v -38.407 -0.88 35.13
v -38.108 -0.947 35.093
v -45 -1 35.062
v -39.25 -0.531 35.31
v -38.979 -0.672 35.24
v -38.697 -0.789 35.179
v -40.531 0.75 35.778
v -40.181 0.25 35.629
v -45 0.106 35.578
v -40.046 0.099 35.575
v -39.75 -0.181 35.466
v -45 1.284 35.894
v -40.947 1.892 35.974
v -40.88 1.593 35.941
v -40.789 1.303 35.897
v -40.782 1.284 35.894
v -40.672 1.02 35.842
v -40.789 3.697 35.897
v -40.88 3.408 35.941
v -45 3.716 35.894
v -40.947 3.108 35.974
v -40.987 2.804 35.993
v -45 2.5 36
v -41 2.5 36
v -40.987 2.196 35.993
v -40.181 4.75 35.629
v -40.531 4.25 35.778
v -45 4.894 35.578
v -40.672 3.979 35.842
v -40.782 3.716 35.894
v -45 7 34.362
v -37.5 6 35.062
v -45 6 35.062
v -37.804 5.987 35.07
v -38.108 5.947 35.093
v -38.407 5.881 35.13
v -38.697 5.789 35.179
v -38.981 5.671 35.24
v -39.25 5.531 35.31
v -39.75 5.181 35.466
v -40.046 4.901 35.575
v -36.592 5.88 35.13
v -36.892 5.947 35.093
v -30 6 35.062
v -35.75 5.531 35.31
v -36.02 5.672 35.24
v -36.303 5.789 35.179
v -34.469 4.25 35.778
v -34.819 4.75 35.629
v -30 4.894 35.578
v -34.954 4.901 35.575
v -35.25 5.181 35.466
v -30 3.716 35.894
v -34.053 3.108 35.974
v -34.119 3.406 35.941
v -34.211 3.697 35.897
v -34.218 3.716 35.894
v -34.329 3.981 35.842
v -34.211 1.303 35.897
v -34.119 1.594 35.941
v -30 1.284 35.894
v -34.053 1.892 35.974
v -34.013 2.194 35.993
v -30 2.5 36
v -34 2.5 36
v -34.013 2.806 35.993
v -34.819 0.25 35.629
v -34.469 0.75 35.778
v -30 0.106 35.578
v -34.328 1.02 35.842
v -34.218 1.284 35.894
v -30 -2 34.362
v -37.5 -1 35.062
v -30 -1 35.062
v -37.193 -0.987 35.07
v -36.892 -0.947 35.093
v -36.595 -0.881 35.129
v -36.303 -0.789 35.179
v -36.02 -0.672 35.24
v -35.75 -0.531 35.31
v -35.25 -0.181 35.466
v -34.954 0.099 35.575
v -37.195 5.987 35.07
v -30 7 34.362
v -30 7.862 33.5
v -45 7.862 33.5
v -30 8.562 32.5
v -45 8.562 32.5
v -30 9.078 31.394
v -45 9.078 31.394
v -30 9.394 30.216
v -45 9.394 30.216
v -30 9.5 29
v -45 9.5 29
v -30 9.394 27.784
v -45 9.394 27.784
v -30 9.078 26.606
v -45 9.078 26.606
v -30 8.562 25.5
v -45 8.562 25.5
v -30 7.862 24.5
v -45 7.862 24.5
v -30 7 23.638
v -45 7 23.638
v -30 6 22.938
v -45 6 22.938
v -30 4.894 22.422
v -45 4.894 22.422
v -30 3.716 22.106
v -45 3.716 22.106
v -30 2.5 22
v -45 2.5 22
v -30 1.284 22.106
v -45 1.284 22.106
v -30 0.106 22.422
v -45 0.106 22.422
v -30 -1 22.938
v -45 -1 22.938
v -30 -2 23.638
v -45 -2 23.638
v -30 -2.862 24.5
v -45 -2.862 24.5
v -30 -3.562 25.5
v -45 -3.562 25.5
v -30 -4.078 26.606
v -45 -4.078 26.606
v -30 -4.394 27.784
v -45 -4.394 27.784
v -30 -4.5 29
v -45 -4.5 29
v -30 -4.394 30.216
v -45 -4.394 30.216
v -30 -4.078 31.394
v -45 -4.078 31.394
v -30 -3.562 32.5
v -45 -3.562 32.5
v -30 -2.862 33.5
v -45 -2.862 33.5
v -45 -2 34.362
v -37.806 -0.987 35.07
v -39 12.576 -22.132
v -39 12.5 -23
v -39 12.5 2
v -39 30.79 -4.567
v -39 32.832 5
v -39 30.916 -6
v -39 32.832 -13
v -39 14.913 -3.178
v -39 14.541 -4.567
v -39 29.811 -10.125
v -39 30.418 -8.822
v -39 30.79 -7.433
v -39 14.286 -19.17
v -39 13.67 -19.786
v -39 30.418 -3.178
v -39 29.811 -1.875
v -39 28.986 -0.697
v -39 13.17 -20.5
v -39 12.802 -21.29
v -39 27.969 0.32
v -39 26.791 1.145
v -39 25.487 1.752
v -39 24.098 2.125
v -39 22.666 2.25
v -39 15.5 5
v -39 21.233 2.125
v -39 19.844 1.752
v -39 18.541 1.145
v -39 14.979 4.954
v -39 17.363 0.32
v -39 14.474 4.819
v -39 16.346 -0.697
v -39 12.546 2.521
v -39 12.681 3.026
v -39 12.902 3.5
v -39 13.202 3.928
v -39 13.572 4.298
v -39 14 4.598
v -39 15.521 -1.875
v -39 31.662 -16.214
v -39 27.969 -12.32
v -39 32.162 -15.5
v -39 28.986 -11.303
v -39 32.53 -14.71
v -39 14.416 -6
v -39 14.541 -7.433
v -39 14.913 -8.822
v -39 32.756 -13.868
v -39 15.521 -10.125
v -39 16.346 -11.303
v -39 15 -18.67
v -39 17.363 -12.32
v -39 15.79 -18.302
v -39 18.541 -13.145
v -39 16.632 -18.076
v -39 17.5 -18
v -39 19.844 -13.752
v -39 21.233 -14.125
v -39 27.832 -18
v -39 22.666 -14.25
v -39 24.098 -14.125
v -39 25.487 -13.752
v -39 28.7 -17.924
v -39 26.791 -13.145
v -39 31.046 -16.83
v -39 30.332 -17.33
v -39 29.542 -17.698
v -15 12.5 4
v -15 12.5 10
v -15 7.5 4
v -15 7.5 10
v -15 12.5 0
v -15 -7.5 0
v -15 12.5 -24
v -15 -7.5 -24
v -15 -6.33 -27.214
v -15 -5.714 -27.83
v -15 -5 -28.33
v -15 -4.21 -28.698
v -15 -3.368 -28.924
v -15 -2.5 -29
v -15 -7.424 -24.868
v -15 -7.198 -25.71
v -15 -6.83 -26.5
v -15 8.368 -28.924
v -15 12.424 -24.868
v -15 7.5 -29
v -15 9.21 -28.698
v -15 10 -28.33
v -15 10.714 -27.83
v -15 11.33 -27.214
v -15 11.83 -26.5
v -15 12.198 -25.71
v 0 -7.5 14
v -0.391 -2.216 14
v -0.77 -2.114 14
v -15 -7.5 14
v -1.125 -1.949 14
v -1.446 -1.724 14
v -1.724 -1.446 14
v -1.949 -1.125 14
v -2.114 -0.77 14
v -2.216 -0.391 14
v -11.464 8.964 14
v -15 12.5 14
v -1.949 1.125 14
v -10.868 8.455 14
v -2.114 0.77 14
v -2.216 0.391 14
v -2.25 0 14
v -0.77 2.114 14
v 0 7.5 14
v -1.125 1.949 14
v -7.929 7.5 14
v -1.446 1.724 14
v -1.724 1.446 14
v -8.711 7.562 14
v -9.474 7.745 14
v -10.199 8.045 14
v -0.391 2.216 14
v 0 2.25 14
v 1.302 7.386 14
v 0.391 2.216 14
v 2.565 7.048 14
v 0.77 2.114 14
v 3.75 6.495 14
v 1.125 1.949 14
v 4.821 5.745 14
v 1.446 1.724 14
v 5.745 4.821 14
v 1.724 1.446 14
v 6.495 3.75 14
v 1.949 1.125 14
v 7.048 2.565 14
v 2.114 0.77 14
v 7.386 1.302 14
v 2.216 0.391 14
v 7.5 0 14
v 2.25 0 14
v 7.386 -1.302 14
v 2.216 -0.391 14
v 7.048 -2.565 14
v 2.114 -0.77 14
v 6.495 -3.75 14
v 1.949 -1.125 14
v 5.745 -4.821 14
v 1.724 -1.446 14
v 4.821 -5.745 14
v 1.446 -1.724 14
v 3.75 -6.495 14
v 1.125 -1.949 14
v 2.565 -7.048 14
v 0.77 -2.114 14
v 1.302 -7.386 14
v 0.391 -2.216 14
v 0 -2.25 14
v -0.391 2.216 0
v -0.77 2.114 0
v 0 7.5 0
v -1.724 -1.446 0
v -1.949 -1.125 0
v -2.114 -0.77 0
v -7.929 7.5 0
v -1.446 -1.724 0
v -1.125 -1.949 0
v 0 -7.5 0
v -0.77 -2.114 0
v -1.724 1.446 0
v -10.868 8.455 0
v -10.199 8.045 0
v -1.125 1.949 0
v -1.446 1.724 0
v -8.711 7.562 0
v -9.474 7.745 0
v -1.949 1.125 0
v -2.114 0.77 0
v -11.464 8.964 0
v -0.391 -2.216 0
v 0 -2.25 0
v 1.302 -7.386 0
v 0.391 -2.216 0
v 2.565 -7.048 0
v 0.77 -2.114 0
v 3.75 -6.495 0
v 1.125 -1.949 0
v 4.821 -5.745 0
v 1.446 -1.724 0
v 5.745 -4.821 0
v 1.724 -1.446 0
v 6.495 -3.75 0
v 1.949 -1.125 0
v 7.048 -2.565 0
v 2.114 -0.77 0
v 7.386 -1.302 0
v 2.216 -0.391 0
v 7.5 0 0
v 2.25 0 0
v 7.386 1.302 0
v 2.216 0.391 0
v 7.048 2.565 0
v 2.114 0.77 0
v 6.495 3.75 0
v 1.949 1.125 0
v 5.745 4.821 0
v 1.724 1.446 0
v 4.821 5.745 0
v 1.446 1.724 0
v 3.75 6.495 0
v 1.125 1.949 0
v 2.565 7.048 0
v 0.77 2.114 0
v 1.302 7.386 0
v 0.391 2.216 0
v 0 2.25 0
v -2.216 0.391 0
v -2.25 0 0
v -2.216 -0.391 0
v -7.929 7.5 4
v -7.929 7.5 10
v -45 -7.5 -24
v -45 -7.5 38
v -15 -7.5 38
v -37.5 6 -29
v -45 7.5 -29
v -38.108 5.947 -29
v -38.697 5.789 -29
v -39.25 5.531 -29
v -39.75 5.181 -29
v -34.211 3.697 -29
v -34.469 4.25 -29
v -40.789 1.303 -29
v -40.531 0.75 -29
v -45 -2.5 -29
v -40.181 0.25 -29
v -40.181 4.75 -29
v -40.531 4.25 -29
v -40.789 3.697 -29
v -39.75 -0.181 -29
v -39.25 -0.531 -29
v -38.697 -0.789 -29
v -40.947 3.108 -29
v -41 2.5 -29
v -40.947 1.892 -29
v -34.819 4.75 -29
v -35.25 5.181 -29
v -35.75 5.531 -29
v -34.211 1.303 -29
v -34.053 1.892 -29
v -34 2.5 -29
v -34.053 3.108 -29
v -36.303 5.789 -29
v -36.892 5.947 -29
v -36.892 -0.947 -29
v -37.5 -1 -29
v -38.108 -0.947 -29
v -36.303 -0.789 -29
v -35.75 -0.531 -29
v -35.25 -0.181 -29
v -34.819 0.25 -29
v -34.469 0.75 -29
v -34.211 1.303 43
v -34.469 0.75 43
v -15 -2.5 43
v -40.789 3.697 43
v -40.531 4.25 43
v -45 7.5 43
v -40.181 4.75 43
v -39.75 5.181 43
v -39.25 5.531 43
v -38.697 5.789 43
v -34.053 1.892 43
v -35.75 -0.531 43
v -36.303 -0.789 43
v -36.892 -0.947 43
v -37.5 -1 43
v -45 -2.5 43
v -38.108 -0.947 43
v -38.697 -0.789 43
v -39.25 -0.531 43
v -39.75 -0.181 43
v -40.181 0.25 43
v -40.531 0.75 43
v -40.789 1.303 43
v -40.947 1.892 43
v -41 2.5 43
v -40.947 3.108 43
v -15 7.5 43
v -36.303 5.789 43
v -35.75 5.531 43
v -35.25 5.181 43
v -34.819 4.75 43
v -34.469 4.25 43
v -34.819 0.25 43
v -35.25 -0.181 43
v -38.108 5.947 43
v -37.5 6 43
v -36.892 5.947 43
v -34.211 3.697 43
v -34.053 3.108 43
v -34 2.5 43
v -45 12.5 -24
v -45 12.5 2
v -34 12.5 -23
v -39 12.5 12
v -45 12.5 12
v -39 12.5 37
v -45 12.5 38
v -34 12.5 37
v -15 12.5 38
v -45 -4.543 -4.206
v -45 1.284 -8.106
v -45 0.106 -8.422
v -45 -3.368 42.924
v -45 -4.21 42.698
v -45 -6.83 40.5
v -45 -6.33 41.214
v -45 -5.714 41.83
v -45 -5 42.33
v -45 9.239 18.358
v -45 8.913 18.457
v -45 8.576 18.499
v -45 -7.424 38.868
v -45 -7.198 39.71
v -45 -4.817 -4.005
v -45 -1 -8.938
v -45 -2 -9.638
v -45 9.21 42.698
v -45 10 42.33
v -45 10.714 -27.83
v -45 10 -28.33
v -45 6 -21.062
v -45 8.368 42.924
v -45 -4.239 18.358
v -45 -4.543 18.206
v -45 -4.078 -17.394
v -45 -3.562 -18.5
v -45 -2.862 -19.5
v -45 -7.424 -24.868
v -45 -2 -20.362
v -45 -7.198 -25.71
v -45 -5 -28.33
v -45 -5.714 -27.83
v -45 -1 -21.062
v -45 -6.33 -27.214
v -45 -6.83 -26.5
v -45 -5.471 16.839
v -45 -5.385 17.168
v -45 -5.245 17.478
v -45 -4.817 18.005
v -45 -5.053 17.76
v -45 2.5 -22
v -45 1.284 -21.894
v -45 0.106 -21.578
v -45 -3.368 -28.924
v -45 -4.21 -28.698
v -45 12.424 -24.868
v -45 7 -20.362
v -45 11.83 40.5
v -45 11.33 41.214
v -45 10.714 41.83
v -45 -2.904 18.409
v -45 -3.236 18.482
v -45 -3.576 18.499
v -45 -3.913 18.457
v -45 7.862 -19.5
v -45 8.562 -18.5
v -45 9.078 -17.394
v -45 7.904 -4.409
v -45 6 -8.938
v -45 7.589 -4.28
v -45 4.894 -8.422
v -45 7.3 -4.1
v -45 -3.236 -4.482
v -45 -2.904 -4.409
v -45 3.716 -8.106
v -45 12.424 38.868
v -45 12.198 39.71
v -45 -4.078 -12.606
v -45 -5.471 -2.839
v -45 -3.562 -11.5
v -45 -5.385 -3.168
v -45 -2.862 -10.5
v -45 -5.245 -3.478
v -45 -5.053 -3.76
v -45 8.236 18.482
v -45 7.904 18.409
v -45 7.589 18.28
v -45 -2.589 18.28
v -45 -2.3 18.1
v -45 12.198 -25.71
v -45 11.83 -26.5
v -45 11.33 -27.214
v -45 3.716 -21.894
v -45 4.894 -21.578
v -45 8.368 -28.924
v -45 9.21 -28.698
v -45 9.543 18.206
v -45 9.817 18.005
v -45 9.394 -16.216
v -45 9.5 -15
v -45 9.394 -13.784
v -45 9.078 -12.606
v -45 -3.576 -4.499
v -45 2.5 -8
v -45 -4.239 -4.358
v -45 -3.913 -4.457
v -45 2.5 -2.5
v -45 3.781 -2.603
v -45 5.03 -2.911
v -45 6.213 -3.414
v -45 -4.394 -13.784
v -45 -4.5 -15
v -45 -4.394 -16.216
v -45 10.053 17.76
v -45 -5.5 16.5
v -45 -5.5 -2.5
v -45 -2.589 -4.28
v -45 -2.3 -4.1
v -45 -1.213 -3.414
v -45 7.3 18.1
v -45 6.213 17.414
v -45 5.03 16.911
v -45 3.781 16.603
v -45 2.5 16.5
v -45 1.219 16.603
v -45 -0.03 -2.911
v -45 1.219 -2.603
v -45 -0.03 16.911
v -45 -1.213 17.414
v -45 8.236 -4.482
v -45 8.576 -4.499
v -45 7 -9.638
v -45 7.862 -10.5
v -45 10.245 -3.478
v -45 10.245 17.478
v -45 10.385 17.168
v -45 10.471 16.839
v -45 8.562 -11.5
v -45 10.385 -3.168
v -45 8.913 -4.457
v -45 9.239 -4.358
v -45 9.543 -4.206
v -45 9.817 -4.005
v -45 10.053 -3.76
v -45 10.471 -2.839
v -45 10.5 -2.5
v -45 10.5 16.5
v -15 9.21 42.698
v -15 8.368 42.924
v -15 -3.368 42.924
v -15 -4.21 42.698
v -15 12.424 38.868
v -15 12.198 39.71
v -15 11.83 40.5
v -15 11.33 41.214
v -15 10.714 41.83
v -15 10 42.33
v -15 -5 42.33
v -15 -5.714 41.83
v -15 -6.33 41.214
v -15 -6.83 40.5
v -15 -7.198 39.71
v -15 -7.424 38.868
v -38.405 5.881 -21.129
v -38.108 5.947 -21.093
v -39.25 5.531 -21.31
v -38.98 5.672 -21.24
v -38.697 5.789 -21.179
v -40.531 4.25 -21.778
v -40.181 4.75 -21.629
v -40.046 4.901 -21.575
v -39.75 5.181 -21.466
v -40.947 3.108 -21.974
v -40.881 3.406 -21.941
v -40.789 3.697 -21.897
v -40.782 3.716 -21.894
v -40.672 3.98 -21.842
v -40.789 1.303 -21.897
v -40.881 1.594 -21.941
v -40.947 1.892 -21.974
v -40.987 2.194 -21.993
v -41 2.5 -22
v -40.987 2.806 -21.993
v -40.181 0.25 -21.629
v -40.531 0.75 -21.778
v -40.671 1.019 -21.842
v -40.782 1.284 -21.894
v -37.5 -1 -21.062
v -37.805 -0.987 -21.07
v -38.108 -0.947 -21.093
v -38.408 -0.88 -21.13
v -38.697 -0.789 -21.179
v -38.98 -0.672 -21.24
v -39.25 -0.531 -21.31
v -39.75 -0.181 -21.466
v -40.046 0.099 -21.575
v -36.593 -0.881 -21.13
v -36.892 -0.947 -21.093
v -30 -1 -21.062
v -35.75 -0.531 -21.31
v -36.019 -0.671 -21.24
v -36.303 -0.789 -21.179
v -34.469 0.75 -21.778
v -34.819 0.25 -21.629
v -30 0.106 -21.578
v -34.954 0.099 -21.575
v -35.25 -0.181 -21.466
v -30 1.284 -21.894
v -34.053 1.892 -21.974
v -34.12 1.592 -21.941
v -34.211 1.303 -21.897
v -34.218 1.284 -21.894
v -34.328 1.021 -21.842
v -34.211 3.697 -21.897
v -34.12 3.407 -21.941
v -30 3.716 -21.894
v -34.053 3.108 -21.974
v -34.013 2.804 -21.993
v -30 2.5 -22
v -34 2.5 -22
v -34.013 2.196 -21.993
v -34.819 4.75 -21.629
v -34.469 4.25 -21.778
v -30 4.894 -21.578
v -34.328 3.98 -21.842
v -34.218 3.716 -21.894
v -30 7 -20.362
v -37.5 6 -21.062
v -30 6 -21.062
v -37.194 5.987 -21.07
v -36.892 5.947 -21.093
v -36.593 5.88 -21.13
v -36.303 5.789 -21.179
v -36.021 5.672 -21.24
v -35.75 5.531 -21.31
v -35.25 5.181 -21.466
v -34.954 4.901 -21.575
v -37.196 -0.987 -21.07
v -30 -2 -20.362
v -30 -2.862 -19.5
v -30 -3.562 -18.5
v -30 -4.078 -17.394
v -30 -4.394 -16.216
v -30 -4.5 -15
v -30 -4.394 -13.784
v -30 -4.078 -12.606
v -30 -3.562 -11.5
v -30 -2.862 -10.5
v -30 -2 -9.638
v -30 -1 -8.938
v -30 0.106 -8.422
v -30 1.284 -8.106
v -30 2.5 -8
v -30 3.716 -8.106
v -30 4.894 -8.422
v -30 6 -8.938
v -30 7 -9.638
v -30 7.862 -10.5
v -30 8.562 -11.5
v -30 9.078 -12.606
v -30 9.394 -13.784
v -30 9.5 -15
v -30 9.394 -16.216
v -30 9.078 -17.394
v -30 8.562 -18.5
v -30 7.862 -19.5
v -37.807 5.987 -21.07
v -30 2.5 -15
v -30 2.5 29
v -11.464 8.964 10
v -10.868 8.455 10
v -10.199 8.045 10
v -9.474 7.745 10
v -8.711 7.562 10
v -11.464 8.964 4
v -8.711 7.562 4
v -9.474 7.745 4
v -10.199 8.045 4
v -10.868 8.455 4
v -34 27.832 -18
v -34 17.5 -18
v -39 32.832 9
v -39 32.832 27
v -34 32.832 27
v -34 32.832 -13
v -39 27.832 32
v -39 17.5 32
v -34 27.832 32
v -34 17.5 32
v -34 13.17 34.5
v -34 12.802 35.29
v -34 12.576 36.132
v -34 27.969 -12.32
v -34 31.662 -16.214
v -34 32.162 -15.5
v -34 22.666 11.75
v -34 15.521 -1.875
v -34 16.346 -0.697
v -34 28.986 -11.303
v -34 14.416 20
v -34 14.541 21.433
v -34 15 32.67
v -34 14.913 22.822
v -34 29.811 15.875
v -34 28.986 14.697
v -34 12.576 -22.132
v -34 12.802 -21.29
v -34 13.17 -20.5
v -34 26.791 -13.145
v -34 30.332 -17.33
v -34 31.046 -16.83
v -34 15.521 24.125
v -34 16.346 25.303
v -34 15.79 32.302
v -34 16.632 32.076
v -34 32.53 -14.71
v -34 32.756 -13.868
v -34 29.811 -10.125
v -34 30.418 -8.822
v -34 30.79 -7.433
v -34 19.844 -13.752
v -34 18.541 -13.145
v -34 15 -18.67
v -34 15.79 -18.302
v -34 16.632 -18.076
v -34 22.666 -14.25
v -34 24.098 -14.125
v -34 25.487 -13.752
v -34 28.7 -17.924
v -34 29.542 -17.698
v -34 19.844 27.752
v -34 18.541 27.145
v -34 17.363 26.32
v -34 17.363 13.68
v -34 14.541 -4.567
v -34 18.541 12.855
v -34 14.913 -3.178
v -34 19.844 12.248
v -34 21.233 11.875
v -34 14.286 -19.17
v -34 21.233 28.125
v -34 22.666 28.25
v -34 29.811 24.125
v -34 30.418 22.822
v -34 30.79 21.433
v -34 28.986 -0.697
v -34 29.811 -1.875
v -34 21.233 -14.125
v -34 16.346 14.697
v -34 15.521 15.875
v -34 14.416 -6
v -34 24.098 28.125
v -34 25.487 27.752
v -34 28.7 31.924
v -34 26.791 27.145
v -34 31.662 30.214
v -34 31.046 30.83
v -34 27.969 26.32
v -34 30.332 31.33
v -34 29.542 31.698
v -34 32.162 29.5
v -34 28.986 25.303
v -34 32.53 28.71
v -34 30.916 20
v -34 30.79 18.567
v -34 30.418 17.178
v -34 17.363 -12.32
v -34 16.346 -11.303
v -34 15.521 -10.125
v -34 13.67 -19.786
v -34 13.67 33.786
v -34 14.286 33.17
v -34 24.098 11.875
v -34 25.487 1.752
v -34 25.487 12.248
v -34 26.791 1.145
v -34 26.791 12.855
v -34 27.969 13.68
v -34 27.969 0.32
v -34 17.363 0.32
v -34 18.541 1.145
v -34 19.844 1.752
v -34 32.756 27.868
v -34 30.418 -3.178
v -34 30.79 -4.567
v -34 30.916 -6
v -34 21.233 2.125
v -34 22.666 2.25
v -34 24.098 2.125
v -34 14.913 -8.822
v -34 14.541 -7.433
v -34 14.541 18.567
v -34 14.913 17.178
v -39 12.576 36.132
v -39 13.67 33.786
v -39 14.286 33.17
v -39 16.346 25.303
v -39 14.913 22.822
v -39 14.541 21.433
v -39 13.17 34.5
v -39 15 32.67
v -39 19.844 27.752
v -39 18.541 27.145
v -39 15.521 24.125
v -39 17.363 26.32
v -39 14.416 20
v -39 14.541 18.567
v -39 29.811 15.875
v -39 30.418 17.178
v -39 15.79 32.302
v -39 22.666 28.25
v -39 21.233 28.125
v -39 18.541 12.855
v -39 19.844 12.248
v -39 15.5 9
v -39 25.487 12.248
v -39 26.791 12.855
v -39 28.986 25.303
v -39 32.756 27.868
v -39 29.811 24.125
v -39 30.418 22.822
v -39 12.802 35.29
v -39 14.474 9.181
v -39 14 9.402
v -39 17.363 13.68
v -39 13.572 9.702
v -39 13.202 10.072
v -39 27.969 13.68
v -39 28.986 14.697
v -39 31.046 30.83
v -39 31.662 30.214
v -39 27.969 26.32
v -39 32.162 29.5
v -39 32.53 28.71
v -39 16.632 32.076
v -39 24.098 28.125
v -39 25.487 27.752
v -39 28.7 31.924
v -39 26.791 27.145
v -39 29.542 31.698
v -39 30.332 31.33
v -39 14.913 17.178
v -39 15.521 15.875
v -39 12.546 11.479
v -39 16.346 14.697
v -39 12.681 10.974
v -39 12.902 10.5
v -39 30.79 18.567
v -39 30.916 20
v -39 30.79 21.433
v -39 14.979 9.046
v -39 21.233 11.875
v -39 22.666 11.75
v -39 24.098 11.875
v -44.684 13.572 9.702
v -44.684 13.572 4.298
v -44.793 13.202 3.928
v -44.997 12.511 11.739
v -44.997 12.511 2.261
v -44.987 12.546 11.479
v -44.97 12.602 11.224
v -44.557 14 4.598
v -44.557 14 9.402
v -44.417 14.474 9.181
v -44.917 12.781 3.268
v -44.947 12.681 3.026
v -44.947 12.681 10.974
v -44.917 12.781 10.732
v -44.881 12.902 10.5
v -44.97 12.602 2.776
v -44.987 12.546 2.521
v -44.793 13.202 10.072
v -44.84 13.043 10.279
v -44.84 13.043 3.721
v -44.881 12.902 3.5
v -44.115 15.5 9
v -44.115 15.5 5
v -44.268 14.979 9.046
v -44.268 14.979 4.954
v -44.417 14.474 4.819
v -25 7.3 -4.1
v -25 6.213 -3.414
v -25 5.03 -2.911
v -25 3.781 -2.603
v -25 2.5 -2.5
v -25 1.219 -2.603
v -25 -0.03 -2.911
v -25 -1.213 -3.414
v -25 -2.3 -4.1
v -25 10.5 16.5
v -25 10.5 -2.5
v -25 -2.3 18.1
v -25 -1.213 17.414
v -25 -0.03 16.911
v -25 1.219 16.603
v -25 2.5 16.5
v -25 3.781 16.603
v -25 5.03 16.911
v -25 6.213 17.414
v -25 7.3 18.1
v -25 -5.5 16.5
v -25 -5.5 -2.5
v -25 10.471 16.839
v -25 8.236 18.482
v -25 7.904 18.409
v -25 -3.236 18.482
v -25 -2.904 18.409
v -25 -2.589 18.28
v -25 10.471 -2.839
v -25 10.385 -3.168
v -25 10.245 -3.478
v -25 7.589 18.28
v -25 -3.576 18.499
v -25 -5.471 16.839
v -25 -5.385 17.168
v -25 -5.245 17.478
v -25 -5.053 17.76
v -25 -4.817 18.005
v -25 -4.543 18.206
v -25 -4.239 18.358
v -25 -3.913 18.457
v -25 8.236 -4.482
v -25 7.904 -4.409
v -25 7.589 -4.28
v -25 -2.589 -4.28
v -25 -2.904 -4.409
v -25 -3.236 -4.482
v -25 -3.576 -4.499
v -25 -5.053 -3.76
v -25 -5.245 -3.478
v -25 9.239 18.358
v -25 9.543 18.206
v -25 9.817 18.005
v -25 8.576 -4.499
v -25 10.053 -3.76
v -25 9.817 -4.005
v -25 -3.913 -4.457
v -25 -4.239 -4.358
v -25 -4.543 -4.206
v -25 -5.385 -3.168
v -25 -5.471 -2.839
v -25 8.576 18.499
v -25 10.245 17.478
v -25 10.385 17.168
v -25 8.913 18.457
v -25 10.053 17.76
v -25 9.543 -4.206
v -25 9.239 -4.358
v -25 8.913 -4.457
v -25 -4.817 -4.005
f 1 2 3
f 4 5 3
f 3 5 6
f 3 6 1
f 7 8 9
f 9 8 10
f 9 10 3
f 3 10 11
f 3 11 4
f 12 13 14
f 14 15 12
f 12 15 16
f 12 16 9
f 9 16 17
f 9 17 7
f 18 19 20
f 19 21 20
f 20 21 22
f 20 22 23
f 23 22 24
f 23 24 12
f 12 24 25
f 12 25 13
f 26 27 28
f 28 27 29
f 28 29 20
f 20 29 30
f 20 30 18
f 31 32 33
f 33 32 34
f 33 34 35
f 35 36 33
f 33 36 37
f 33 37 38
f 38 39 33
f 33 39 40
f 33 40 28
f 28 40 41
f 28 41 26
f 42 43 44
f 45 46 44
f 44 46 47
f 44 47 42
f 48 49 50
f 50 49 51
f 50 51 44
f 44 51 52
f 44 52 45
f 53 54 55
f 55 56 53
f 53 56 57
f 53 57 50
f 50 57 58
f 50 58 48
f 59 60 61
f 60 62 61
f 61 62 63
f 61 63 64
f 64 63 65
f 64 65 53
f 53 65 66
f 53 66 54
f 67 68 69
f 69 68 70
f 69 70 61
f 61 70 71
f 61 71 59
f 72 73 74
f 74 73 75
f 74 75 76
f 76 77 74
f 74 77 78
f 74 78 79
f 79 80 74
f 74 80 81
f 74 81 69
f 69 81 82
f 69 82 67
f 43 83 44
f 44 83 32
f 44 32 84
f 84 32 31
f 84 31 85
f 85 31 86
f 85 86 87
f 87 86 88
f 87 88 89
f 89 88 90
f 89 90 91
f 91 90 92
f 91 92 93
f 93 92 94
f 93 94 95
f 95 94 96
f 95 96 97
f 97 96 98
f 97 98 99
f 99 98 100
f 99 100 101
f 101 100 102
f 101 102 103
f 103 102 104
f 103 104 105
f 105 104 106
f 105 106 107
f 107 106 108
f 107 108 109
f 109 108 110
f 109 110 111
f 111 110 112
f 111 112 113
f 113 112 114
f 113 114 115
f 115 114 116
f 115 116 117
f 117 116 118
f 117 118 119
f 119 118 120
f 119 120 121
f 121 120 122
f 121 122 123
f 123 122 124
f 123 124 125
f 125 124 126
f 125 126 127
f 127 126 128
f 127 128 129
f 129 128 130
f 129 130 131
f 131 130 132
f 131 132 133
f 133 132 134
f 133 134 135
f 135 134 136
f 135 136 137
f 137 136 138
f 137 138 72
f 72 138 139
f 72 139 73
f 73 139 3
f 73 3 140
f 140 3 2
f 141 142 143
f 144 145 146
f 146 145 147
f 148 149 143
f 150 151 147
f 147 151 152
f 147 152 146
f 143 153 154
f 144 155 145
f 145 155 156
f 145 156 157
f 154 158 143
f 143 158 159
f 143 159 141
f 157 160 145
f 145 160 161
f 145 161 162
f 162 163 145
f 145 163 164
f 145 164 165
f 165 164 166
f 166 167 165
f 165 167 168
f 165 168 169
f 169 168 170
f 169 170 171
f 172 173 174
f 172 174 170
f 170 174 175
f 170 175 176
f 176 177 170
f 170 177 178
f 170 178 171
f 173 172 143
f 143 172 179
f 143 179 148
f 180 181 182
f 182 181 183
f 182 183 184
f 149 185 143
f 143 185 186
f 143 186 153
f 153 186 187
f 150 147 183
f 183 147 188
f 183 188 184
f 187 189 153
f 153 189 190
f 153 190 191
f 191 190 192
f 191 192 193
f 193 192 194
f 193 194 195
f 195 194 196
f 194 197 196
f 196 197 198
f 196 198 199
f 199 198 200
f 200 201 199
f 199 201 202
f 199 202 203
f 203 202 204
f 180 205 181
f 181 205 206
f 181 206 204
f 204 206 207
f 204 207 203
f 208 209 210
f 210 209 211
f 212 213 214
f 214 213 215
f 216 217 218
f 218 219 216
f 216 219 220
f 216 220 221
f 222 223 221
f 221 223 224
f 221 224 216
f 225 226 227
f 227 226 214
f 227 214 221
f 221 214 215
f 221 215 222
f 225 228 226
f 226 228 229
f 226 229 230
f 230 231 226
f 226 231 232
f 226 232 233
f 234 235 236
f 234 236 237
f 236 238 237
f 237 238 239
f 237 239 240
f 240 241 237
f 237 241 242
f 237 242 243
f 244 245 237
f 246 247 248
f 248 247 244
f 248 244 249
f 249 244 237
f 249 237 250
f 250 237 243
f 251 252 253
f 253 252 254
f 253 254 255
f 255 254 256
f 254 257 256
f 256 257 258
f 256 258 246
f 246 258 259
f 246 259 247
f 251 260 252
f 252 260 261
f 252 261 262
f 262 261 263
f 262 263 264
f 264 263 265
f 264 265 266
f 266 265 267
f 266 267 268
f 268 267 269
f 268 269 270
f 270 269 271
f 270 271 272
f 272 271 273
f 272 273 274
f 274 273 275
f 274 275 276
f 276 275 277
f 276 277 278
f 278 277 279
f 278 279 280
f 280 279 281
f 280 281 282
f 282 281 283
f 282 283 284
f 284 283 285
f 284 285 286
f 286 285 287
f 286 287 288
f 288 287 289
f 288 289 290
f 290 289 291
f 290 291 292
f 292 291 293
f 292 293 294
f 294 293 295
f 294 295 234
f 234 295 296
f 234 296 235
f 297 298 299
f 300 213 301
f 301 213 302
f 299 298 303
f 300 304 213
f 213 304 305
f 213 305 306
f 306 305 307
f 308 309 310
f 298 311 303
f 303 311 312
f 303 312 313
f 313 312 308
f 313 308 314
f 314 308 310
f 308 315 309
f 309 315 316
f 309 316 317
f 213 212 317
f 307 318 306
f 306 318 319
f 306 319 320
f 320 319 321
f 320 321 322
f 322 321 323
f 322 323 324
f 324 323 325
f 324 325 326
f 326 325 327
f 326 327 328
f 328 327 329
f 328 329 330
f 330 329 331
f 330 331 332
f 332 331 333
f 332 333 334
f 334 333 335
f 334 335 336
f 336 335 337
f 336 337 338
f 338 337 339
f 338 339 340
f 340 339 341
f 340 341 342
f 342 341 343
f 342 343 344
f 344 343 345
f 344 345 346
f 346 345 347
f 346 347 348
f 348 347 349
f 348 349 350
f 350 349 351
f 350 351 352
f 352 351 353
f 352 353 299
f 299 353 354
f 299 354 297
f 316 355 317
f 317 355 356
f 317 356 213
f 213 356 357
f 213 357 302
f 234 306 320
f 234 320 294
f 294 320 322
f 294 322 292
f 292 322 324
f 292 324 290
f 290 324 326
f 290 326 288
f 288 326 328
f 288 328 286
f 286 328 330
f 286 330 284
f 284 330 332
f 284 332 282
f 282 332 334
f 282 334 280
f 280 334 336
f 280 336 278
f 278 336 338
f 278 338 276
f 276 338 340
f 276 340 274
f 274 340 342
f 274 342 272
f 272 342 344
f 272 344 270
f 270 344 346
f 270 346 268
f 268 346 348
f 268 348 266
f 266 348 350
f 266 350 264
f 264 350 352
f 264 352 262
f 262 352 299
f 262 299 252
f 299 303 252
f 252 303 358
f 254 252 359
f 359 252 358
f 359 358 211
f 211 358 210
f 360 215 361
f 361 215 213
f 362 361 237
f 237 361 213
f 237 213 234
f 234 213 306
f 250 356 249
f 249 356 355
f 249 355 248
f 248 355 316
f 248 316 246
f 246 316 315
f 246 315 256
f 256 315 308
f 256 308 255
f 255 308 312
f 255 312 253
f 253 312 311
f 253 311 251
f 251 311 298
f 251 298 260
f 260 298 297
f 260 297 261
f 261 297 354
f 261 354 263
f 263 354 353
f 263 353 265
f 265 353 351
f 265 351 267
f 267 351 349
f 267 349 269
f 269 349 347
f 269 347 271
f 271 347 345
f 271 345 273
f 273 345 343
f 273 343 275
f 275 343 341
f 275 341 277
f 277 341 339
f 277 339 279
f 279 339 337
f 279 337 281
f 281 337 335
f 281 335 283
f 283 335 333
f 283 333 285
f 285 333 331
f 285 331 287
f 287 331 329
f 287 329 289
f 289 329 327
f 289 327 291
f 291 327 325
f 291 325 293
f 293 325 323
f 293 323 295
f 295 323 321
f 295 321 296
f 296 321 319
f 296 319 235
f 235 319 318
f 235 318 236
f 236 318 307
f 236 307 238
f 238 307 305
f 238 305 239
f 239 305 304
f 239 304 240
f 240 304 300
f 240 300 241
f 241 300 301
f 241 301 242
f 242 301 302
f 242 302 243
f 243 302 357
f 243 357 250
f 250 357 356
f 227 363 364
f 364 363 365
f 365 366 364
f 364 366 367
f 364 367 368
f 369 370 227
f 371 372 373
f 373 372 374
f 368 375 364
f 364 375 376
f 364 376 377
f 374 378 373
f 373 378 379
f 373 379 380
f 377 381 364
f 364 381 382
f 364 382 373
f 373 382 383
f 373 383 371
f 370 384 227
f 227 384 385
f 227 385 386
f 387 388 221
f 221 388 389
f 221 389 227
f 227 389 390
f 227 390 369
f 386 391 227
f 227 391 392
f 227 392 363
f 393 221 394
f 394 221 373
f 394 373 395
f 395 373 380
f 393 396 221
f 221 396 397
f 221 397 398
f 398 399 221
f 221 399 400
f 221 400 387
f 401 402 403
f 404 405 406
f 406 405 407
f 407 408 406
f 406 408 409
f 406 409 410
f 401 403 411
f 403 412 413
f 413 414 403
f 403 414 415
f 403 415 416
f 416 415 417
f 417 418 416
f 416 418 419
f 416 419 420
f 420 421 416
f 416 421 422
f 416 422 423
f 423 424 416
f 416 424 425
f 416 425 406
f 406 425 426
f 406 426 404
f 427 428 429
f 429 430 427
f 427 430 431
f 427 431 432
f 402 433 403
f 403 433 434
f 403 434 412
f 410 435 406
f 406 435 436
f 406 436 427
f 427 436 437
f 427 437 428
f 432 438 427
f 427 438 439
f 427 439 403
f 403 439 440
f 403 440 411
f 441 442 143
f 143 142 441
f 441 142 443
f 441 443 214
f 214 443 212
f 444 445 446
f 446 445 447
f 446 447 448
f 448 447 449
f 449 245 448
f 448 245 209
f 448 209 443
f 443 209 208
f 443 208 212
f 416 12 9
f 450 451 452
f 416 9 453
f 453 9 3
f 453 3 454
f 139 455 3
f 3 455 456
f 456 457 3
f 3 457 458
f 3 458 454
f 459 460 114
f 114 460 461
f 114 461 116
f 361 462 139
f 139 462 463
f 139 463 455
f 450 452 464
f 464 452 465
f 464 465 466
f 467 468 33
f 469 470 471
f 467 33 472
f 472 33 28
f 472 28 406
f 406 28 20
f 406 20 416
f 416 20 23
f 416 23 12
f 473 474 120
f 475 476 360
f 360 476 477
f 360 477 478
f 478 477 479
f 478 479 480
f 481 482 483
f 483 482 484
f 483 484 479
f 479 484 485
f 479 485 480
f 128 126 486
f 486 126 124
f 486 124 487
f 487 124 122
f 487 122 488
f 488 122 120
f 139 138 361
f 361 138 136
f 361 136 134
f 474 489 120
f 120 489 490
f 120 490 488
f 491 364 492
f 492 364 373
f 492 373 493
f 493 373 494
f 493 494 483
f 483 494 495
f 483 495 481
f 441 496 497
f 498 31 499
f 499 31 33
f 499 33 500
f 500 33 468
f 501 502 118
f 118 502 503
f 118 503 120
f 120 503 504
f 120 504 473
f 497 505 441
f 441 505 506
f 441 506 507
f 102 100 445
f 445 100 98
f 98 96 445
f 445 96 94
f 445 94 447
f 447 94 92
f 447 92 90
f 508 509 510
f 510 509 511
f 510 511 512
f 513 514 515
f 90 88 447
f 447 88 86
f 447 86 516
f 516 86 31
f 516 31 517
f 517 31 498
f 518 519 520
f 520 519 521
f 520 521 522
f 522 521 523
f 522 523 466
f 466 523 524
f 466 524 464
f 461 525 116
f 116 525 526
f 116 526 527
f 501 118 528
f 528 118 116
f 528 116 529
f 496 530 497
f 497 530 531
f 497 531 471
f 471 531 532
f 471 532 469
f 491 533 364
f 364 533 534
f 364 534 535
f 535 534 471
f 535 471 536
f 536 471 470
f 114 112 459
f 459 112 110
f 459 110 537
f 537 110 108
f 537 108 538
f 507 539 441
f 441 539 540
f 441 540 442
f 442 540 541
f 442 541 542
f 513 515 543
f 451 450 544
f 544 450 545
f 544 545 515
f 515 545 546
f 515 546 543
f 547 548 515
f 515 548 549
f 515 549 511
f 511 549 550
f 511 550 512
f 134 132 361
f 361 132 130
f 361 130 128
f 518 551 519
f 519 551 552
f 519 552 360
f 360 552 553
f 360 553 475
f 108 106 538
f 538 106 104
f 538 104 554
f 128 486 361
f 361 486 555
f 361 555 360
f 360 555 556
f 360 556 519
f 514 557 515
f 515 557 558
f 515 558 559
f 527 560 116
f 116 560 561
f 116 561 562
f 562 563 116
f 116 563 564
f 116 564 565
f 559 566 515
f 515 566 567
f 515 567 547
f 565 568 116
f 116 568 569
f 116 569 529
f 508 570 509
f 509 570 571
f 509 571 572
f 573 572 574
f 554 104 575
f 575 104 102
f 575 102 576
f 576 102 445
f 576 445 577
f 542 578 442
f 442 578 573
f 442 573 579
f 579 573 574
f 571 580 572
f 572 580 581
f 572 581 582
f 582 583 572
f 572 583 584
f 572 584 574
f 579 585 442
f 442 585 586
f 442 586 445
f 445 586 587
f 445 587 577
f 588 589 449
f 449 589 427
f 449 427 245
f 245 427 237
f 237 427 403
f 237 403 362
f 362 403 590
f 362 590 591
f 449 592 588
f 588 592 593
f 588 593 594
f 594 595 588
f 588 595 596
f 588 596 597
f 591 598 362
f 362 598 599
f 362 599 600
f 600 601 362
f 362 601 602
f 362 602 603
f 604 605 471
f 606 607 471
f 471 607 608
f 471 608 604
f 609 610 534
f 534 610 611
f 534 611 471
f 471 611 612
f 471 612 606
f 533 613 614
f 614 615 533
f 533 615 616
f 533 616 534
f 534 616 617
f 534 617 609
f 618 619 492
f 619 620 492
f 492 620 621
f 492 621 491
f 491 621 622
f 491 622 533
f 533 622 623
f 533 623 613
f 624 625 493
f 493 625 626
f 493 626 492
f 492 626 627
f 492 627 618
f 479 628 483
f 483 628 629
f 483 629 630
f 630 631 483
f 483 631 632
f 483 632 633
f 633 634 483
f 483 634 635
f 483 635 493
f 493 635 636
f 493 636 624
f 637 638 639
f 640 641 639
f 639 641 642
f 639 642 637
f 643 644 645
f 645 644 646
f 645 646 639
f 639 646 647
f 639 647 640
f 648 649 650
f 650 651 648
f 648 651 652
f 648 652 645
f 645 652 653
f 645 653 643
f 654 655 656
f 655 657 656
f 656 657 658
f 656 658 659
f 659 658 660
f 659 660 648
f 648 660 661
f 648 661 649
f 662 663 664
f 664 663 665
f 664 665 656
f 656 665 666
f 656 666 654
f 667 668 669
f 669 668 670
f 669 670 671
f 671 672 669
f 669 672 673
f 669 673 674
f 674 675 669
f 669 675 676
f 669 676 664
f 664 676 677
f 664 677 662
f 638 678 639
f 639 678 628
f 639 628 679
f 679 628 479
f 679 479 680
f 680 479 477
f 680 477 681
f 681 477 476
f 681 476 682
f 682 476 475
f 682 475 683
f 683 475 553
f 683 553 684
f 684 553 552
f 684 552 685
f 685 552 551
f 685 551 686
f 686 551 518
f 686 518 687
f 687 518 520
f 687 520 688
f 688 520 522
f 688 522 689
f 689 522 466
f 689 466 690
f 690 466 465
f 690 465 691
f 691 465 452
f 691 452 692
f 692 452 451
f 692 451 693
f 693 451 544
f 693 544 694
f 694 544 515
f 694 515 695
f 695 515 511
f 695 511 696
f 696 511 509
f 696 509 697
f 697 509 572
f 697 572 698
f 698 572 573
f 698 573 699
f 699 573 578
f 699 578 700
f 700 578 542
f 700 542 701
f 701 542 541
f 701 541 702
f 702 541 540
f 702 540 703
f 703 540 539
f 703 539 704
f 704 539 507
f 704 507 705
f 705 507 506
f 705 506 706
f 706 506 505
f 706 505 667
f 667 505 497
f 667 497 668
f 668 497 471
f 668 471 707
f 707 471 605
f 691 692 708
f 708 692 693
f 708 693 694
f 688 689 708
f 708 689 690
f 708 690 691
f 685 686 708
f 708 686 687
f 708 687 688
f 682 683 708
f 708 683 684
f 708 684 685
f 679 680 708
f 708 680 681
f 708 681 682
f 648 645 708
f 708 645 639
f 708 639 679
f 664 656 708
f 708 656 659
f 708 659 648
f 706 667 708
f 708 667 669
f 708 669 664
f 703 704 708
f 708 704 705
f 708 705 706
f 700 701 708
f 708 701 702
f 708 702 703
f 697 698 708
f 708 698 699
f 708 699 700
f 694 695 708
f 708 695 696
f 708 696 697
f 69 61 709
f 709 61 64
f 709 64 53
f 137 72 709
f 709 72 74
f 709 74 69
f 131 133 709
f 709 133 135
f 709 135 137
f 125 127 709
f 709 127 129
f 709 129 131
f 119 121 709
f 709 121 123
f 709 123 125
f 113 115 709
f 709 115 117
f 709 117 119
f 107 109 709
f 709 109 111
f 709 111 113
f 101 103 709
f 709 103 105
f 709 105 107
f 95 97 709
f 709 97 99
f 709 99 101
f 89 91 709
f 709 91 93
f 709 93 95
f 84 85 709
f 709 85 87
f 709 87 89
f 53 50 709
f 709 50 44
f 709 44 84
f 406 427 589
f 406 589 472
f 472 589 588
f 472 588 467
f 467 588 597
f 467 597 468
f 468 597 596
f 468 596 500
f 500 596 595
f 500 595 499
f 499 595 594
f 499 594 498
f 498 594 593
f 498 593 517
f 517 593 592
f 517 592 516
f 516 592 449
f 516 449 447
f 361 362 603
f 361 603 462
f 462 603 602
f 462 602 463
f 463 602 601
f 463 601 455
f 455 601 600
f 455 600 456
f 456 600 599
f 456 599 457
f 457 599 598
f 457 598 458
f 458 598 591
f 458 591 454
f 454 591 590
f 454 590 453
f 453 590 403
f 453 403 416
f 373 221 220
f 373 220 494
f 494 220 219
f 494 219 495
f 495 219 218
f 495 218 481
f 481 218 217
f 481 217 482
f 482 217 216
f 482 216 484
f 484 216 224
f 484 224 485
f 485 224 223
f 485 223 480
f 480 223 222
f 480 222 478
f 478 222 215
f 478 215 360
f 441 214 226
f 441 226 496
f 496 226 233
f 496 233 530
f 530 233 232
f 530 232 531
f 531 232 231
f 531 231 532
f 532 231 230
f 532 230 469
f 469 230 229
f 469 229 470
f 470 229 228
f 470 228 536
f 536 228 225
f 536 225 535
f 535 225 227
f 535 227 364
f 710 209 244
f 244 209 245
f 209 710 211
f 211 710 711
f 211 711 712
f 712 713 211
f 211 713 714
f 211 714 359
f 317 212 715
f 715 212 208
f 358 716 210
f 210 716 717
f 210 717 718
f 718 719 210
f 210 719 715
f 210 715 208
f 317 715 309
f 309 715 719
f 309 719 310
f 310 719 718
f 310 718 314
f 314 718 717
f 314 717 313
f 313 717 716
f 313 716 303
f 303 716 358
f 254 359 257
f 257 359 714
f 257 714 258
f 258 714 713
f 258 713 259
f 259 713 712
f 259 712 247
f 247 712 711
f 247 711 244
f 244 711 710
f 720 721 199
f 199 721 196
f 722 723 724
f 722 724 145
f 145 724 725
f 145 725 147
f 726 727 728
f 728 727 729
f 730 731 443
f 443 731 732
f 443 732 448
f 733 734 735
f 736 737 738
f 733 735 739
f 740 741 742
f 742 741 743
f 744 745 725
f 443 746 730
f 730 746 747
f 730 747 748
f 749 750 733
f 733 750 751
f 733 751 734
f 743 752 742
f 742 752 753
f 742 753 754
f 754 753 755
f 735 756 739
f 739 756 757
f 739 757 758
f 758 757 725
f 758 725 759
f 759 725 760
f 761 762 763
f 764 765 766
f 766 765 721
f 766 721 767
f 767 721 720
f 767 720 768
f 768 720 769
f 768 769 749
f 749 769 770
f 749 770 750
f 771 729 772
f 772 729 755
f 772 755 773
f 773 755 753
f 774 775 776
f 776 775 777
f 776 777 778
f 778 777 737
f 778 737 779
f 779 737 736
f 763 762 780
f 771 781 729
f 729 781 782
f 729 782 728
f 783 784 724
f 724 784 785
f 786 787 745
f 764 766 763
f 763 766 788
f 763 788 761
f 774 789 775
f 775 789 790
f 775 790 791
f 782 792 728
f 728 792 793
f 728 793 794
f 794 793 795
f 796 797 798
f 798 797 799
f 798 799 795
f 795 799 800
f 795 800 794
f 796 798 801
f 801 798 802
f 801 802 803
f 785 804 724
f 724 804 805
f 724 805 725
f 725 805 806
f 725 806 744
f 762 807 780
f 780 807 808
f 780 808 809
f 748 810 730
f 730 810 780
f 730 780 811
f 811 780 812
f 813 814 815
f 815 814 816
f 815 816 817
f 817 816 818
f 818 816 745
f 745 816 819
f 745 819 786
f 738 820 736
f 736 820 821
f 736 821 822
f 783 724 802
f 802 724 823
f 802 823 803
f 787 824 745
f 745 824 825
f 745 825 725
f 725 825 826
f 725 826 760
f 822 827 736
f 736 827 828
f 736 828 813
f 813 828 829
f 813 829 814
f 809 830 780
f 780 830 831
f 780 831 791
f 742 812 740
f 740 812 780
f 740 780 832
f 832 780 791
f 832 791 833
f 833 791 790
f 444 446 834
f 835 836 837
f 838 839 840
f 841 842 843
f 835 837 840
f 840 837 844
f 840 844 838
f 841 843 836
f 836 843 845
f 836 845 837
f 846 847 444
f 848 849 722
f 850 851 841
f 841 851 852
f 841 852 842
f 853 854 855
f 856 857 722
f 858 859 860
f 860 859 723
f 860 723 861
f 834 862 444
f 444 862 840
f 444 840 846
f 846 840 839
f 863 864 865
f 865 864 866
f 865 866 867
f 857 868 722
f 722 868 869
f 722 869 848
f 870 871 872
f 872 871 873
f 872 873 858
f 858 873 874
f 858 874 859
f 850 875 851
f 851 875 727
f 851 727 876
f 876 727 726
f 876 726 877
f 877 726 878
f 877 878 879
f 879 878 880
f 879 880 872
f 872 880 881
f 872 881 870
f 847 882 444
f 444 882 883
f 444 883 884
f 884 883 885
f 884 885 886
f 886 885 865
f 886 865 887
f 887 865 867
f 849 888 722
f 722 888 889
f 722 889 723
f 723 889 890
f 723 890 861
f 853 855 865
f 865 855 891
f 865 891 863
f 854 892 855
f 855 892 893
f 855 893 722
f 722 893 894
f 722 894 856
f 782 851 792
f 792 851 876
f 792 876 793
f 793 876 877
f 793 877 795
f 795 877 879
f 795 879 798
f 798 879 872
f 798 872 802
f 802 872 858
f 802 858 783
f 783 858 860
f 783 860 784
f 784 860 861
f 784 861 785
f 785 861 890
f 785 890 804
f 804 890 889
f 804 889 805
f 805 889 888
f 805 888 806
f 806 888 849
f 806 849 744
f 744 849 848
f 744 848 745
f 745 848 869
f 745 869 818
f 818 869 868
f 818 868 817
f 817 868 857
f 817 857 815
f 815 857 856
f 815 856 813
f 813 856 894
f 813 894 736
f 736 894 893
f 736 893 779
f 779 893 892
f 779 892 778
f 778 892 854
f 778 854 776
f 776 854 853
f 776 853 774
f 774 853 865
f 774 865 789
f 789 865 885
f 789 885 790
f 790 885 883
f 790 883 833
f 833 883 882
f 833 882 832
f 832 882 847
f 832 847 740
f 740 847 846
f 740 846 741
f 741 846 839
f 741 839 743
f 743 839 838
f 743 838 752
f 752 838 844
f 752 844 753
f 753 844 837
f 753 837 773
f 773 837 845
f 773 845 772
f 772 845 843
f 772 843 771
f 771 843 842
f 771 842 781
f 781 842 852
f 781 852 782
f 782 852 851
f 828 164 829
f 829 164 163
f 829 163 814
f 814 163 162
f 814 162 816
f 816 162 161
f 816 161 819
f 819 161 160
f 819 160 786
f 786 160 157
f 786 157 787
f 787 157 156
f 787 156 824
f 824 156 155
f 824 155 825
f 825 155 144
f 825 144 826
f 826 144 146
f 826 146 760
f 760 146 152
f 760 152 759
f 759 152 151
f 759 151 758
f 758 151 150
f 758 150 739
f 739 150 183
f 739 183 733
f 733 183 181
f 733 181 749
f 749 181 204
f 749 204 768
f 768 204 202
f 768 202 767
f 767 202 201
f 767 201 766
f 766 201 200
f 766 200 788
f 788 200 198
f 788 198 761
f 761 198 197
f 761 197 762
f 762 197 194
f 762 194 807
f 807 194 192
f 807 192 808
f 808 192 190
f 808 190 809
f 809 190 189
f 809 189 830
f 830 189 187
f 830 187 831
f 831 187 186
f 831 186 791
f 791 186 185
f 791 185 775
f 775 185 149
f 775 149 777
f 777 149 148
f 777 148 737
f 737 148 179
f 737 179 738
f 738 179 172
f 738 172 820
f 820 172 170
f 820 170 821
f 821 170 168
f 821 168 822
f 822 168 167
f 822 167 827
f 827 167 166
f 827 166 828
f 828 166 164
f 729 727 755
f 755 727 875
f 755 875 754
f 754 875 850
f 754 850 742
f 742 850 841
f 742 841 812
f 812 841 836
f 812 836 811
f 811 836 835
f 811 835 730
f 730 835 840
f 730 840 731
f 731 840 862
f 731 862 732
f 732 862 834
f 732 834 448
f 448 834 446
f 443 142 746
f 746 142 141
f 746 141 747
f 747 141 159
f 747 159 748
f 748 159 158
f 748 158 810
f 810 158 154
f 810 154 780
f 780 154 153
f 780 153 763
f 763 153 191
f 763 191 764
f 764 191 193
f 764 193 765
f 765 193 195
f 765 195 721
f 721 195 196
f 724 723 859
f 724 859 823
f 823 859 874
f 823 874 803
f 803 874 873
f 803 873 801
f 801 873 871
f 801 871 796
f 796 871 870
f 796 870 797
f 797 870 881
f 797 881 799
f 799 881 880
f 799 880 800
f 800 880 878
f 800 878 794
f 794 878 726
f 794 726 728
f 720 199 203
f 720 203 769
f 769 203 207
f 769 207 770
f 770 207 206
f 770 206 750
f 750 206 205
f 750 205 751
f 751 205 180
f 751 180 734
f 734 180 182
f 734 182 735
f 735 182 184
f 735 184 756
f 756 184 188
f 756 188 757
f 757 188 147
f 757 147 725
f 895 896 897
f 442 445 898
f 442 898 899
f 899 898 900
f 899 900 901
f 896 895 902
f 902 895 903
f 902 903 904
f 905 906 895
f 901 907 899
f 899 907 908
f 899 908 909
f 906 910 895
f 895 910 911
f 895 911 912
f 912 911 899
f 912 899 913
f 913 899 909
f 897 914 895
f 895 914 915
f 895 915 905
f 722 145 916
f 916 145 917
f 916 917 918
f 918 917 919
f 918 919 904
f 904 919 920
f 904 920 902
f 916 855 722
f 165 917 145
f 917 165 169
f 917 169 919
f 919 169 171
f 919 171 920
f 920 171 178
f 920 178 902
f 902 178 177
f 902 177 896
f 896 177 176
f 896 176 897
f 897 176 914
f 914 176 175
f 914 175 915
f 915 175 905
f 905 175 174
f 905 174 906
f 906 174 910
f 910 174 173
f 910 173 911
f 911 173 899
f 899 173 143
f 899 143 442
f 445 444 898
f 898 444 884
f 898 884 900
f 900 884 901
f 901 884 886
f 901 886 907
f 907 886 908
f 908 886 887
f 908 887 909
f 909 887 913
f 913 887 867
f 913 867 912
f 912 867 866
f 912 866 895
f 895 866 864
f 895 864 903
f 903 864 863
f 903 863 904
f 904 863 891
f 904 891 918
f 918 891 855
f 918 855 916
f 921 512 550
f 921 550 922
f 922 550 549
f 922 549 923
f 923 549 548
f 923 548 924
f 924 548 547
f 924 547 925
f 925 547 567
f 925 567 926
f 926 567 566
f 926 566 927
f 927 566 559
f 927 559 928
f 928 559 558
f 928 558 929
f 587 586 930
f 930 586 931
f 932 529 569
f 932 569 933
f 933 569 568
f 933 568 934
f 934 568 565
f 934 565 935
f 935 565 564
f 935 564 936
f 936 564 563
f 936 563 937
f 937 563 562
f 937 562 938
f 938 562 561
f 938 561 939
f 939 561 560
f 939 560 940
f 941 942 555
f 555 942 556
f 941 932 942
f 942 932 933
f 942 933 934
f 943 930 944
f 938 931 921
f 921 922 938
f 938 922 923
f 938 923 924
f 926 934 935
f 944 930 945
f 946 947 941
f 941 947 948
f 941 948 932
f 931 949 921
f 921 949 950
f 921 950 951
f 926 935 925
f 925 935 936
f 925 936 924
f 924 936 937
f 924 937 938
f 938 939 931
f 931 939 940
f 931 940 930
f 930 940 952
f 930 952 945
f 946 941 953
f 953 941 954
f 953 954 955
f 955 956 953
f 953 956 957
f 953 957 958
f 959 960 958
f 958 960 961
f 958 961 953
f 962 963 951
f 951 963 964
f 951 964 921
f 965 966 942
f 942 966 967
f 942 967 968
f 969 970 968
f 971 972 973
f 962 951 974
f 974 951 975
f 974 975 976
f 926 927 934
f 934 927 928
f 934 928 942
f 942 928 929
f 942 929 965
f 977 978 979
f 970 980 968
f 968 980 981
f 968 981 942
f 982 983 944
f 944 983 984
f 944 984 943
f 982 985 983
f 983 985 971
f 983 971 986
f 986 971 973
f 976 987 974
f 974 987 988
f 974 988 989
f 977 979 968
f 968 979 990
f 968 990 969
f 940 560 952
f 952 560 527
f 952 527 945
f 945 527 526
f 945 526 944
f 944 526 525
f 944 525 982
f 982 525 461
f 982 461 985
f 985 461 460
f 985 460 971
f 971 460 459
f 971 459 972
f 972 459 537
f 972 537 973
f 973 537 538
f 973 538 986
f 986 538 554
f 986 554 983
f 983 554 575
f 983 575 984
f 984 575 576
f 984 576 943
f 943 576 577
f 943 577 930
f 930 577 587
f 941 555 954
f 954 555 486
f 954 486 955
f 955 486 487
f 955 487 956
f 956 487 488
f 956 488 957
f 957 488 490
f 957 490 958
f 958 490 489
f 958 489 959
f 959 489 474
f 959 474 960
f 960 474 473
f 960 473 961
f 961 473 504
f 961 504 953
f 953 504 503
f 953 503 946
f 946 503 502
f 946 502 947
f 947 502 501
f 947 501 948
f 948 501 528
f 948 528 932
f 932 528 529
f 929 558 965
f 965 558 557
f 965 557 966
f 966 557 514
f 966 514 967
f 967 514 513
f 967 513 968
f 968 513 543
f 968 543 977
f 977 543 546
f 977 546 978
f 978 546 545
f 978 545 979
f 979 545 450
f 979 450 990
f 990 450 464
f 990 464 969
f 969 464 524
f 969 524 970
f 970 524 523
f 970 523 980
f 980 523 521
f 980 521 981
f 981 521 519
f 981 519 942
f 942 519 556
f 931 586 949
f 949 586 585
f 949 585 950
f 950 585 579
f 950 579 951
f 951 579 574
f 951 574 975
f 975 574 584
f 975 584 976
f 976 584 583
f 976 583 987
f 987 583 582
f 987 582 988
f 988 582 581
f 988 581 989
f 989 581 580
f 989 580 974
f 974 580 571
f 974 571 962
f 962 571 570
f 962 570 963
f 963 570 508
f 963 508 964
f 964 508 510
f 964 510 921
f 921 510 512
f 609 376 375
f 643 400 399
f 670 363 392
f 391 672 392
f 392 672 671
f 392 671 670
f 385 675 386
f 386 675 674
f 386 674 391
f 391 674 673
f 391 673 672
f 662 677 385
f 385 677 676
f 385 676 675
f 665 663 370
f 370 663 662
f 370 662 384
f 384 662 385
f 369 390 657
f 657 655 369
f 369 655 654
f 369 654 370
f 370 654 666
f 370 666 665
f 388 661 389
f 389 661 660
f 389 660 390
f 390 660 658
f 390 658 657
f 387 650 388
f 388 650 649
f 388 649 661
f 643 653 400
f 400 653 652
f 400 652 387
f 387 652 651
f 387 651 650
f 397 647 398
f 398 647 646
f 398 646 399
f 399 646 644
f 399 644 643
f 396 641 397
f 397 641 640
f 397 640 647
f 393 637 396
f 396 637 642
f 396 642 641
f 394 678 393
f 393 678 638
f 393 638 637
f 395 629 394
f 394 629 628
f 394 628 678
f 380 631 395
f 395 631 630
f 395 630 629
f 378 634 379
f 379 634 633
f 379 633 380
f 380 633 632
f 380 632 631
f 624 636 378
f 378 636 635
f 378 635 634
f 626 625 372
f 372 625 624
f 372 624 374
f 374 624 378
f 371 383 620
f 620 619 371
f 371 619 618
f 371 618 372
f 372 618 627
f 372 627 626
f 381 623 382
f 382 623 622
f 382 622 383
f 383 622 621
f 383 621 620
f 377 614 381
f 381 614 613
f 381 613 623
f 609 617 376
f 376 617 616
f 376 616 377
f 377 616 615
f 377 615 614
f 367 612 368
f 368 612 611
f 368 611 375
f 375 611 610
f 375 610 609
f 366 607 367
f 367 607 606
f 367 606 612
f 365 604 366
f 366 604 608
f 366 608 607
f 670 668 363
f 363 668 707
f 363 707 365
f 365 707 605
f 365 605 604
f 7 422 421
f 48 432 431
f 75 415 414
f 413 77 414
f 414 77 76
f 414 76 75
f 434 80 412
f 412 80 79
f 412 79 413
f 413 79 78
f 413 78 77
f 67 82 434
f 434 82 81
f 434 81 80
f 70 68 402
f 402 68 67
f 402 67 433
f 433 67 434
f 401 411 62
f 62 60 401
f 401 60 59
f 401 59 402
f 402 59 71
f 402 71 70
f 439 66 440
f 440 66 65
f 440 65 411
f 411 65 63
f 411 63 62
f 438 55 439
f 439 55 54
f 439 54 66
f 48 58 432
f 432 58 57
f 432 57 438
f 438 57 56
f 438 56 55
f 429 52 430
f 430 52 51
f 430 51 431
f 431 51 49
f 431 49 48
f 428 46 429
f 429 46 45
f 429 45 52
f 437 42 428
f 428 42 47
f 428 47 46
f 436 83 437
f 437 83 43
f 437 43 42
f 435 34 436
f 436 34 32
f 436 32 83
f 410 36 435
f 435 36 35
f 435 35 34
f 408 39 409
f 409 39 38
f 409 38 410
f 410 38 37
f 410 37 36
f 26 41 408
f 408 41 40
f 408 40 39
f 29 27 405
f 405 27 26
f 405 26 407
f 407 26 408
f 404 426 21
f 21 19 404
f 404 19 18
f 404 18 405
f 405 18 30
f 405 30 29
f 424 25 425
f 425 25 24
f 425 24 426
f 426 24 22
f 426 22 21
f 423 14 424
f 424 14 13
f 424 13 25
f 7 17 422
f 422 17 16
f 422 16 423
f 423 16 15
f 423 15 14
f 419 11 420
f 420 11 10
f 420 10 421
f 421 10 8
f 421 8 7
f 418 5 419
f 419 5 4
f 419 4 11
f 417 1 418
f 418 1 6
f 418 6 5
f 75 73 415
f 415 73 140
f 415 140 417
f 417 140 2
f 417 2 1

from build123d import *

# Parameters (mm, degrees)
SKETCH1_R               = 2.2500000000000004
BOSS_EXTRUDE1_DEPTH     = 14
BOSS_EXTRUDE2_DEPTH     = 30
SKETCH3_R               = 7
CUT_EXTRUDE1_DEPTH      = 15
FILLET1_R               = 5
RIB1_REACH              = 65.484
SKETCH4_WALL_W          = 136.0395678423848
SKETCH4_WALL_H          = 4
FILLET2_R               = 5
BOSS_EXTRUDE3_START     = -6
SKETCH6_W               = 50
SKETCH6_H               = 20.33166445293904
BOSS_EXTRUDE3_DEPTH     = 5
CUT_EXTRUDE2_REACH      = 73.338
SKETCH7_R               = 8.250000000000005
SKETCH7_R_2             = 8.25
FILLET3_R               = 5
FILLET4_R               = 5
RIB2_REACH              = 68.324
SKETCH8_WALL_W          = 155.84718590256796
SKETCH8_WALL_H          = 4
FILLET5_R               = 3
CUT_EXTRUDE3_DEPTH      = 20
FILLET6_R               = 2
CUT_EXTRUDE4_REACH      = 93.033
CUT_EXTRUDE4_END_RADIUS = 7
SKETCH10_R              = 3.5000000000000004


with BuildPart() as part:
    # Sketch1 → Boss-Extrude1 (new body)
    with BuildSketch(Plane.XY):
        with BuildLine():
            Line((9.2e-16, 7.5), (-14.999999999999998, 7.500000000000002))
            Line((-14.999999999999998, 7.500000000000002), (-14.999999999999998, -7.500000000000002))
            Line((-14.999999999999998, -7.500000000000002), (9.2e-16, -7.5))
            ThreePointArc((9.2e-16, -7.5), (7.5, 0), (9.2e-16, 7.5))
        make_face()
        Circle(SKETCH1_R, mode=Mode.SUBTRACT)
    extrude(amount=BOSS_EXTRUDE1_DEPTH)

    # Sketch2 → Boss-Extrude2 (add)
    with BuildSketch(Plane.ZY.offset(14.999999999999998)):
        Polygon((-28.999999999999993, -7.500000000000002), (43, -7.500000000000002), (42.99999999999999, 12.499999999999998), (-28.99999999999999, 12.499999999999998), align=None)
    extrude(amount=BOSS_EXTRUDE2_DEPTH)

    # Sketch3 → Cut-Extrude1 (cut)
    with BuildSketch(Plane.ZY.offset(45)):
        with Locations((28.999999999999996, 2.499999999999998)):
            Circle(SKETCH3_R)
        with Locations((-15, 2.499999999999998)):
            Circle(SKETCH3_R)
    extrude(amount=-CUT_EXTRUDE1_DEPTH, mode=Mode.SUBTRACT)

    # Fillet1
    fillet1_edges = [part.edges().sort_by_distance(p)[0] for p in [
        (-30, 12.499999999999998, -28.99999999999999),
        (-30, -7.500000000000002, -28.999999999999993),
        (-30, -7.500000000000002, 43),
        (-30, 12.499999999999998, 42.99999999999999),
    ]]
    fillet(fillet1_edges, radius=FILLET1_R)

    # Sketch4 wall → Rib1 (add, up to next)
    with BuildSketch(Plane(origin=(-12.5, 10, 14), x_dir=(0.707106781187, -0.707106781187, 0), z_dir=(0.707106781187, 0.707106781187, 0)), mode=Mode.PRIVATE) as rib1_sk1:
        with Locations((0, 2)):
            Rectangle(SKETCH4_WALL_W, SKETCH4_WALL_H)
    rib1_tool1 = extrude(rib1_sk1.sketch, amount=-RIB1_REACH, mode=Mode.PRIVATE) - part.part
    rib1 = rib1_tool1.solids().sort_by_distance((-12.5, 10, 14))[0]
    add(rib1)

    # Mirror1: Rib1 across plane
    add(rib1.mirror(Plane.XY.offset(7)))

    # Fillet2
    fillet2_edges = [part.edges().sort_by_distance(p)[0] for p in [
        (-10.000000000000002, 7.500000000000001, 2),
        (-10.000000000000002, 7.500000000000001, 12),
    ]]
    fillet(fillet2_edges, radius=FILLET2_R)

    # Sketch6 → Boss-Extrude3 (add)
    with BuildSketch(Plane.ZY.offset(45).offset(BOSS_EXTRUDE3_START)):
        with Locations((7.000000000000005, 22.665832226469526)):
            Rectangle(SKETCH6_W, SKETCH6_H)
    extrude(amount=-BOSS_EXTRUDE3_DEPTH)

    # Sketch7 → Cut-Extrude2 (cut, up to next)
    with BuildSketch(Plane.ZY.offset(39), mode=Mode.PRIVATE) as cut_extrude2_sk1:
        with Locations((-5.999999999999993, 22.665832226469526)):
            Circle(SKETCH7_R)
    cut_extrude2_tool1 = extrude(cut_extrude2_sk1.sketch, amount=-CUT_EXTRUDE2_REACH, mode=Mode.PRIVATE) & part.part
    # Sketch7 → Cut-Extrude2 (cut, up to next)
    with BuildSketch(Plane.ZY.offset(39), mode=Mode.PRIVATE) as cut_extrude2_sk2:
        with Locations((20.000000000000007, 22.665832226469526)):
            Circle(SKETCH7_R_2)
    cut_extrude2_tool2 = extrude(cut_extrude2_sk2.sketch, amount=-CUT_EXTRUDE2_REACH, mode=Mode.PRIVATE) & part.part
    add(cut_extrude2_tool1.solids().sort_by_distance((-39, 22.665832, -6))[0], mode=Mode.SUBTRACT)
    add(cut_extrude2_tool2.solids().sort_by_distance((-39, 22.665832, 20))[0], mode=Mode.SUBTRACT)

    # Fillet3
    fillet3_edges = [part.edges().sort_by_distance(p)[0] for p in [
        (-36.5, 12.500000000000004, -17.999999999999996),
        (-36.5, 12.500000000000004, 32.00000000000001),
    ]]
    fillet(fillet3_edges, radius=FILLET3_R)

    # Fillet4
    fillet4_edges = [part.edges().sort_by_distance(p)[0] for p in [
        (-36.5, 32.831664452939044, -17.999999999999996),
        (-36.5, 32.831664452939044, 32.00000000000001),
    ]]
    fillet(fillet4_edges, radius=FILLET4_R)

    # Sketch8 wall → Rib2 (add, up to next)
    with BuildSketch(Plane(origin=(-42, 22.665832227, 7), x_dir=(-0.283038838463, -0.959108448467, 0), z_dir=(0.959108448467, -0.283038838463, 0)), mode=Mode.PRIVATE) as rib2_sk1:
        Rectangle(SKETCH8_WALL_W, SKETCH8_WALL_H)
    rib2_tool1 = extrude(rib2_sk1.sketch, amount=RIB2_REACH, mode=Mode.PRIVATE) - part.part
    add(rib2_tool1.solids().sort_by_distance((-42, 22.665832227, 7))[0])

    # Fillet5
    fillet5_edges = [part.edges().sort_by_distance(p)[0] for p in [
        (-42, 12.5, 9),
        (-42, 12.5, 5),
    ]]
    fillet(fillet5_edges, radius=FILLET5_R)

    # Sketch9 → Cut-Extrude3 (cut)
    with BuildSketch(Plane.ZY.offset(45)):
        with BuildLine():
            Line((-10.499999999999998, 10.499999999999998), (24.500000000000004, 10.499999999999998))
            ThreePointArc((24.500000000000004, 10.499999999999998), (16.500000000000004, 2.4999999999999996), (24.500000000000004, -5.500000000000002))
            Line((24.500000000000004, -5.500000000000002), (-10.499999999999998, -5.500000000000002))
            ThreePointArc((-10.499999999999998, -5.500000000000002), (-2.4999999999999982, 2.4999999999999987), (-10.499999999999998, 10.499999999999998))
        make_face()
    extrude(amount=-CUT_EXTRUDE3_DEPTH, mode=Mode.SUBTRACT)

    # Fillet6
    fillet6_edges = [part.edges().sort_by_distance(p)[0] for p in [
        (-35, -5.500000000000002, -10.499999999999998),
        (-35, 10.5, -10.499999999999996),
        (-35, 10.499999999999998, 24.500000000000004),
        (-35, -5.500000000000002, 24.500000000000004),
    ]]
    fillet(fillet6_edges, radius=FILLET6_R - 0.0001)  # a hair under: the kernel refuses the full size

    # Cut-Extrude4: up to this cylinder (the profile starts outside it)
    cut_extrude4_end = Plane(origin=(-37.5, 2.499999999999998, -15), z_dir=(-1, 0, 0)) * Cylinder(CUT_EXTRUDE4_END_RADIUS, 201.066, mode=Mode.PRIVATE)
    # Sketch10 → Cut-Extrude4 (cut, up to the surface)
    with BuildSketch(Plane(origin=(0, 5.03e-15, -28.999999999999993), x_dir=(-1, 0, 0), z_dir=(0, 1.7e-16, -1)), mode=Mode.PRIVATE) as cut_extrude4_sk1:
        with Locations(Location((37.5, 2.499999999999993, 0), (0, 0, 90))):
            Circle(SKETCH10_R)
    cut_extrude4_tool1 = extrude(cut_extrude4_sk1.sketch, amount=-CUT_EXTRUDE4_REACH, mode=Mode.PRIVATE) - cut_extrude4_end
    cut_extrude4 = cut_extrude4_tool1.solids().sort_by_distance((-37.5, 2.5, -29))[0]
    add(cut_extrude4, mode=Mode.SUBTRACT)

    # Mirror2: Cut-Extrude4 across plane
    add(cut_extrude4.mirror(Plane.XY.offset(7)), mode=Mode.SUBTRACT)


solid = part.part
